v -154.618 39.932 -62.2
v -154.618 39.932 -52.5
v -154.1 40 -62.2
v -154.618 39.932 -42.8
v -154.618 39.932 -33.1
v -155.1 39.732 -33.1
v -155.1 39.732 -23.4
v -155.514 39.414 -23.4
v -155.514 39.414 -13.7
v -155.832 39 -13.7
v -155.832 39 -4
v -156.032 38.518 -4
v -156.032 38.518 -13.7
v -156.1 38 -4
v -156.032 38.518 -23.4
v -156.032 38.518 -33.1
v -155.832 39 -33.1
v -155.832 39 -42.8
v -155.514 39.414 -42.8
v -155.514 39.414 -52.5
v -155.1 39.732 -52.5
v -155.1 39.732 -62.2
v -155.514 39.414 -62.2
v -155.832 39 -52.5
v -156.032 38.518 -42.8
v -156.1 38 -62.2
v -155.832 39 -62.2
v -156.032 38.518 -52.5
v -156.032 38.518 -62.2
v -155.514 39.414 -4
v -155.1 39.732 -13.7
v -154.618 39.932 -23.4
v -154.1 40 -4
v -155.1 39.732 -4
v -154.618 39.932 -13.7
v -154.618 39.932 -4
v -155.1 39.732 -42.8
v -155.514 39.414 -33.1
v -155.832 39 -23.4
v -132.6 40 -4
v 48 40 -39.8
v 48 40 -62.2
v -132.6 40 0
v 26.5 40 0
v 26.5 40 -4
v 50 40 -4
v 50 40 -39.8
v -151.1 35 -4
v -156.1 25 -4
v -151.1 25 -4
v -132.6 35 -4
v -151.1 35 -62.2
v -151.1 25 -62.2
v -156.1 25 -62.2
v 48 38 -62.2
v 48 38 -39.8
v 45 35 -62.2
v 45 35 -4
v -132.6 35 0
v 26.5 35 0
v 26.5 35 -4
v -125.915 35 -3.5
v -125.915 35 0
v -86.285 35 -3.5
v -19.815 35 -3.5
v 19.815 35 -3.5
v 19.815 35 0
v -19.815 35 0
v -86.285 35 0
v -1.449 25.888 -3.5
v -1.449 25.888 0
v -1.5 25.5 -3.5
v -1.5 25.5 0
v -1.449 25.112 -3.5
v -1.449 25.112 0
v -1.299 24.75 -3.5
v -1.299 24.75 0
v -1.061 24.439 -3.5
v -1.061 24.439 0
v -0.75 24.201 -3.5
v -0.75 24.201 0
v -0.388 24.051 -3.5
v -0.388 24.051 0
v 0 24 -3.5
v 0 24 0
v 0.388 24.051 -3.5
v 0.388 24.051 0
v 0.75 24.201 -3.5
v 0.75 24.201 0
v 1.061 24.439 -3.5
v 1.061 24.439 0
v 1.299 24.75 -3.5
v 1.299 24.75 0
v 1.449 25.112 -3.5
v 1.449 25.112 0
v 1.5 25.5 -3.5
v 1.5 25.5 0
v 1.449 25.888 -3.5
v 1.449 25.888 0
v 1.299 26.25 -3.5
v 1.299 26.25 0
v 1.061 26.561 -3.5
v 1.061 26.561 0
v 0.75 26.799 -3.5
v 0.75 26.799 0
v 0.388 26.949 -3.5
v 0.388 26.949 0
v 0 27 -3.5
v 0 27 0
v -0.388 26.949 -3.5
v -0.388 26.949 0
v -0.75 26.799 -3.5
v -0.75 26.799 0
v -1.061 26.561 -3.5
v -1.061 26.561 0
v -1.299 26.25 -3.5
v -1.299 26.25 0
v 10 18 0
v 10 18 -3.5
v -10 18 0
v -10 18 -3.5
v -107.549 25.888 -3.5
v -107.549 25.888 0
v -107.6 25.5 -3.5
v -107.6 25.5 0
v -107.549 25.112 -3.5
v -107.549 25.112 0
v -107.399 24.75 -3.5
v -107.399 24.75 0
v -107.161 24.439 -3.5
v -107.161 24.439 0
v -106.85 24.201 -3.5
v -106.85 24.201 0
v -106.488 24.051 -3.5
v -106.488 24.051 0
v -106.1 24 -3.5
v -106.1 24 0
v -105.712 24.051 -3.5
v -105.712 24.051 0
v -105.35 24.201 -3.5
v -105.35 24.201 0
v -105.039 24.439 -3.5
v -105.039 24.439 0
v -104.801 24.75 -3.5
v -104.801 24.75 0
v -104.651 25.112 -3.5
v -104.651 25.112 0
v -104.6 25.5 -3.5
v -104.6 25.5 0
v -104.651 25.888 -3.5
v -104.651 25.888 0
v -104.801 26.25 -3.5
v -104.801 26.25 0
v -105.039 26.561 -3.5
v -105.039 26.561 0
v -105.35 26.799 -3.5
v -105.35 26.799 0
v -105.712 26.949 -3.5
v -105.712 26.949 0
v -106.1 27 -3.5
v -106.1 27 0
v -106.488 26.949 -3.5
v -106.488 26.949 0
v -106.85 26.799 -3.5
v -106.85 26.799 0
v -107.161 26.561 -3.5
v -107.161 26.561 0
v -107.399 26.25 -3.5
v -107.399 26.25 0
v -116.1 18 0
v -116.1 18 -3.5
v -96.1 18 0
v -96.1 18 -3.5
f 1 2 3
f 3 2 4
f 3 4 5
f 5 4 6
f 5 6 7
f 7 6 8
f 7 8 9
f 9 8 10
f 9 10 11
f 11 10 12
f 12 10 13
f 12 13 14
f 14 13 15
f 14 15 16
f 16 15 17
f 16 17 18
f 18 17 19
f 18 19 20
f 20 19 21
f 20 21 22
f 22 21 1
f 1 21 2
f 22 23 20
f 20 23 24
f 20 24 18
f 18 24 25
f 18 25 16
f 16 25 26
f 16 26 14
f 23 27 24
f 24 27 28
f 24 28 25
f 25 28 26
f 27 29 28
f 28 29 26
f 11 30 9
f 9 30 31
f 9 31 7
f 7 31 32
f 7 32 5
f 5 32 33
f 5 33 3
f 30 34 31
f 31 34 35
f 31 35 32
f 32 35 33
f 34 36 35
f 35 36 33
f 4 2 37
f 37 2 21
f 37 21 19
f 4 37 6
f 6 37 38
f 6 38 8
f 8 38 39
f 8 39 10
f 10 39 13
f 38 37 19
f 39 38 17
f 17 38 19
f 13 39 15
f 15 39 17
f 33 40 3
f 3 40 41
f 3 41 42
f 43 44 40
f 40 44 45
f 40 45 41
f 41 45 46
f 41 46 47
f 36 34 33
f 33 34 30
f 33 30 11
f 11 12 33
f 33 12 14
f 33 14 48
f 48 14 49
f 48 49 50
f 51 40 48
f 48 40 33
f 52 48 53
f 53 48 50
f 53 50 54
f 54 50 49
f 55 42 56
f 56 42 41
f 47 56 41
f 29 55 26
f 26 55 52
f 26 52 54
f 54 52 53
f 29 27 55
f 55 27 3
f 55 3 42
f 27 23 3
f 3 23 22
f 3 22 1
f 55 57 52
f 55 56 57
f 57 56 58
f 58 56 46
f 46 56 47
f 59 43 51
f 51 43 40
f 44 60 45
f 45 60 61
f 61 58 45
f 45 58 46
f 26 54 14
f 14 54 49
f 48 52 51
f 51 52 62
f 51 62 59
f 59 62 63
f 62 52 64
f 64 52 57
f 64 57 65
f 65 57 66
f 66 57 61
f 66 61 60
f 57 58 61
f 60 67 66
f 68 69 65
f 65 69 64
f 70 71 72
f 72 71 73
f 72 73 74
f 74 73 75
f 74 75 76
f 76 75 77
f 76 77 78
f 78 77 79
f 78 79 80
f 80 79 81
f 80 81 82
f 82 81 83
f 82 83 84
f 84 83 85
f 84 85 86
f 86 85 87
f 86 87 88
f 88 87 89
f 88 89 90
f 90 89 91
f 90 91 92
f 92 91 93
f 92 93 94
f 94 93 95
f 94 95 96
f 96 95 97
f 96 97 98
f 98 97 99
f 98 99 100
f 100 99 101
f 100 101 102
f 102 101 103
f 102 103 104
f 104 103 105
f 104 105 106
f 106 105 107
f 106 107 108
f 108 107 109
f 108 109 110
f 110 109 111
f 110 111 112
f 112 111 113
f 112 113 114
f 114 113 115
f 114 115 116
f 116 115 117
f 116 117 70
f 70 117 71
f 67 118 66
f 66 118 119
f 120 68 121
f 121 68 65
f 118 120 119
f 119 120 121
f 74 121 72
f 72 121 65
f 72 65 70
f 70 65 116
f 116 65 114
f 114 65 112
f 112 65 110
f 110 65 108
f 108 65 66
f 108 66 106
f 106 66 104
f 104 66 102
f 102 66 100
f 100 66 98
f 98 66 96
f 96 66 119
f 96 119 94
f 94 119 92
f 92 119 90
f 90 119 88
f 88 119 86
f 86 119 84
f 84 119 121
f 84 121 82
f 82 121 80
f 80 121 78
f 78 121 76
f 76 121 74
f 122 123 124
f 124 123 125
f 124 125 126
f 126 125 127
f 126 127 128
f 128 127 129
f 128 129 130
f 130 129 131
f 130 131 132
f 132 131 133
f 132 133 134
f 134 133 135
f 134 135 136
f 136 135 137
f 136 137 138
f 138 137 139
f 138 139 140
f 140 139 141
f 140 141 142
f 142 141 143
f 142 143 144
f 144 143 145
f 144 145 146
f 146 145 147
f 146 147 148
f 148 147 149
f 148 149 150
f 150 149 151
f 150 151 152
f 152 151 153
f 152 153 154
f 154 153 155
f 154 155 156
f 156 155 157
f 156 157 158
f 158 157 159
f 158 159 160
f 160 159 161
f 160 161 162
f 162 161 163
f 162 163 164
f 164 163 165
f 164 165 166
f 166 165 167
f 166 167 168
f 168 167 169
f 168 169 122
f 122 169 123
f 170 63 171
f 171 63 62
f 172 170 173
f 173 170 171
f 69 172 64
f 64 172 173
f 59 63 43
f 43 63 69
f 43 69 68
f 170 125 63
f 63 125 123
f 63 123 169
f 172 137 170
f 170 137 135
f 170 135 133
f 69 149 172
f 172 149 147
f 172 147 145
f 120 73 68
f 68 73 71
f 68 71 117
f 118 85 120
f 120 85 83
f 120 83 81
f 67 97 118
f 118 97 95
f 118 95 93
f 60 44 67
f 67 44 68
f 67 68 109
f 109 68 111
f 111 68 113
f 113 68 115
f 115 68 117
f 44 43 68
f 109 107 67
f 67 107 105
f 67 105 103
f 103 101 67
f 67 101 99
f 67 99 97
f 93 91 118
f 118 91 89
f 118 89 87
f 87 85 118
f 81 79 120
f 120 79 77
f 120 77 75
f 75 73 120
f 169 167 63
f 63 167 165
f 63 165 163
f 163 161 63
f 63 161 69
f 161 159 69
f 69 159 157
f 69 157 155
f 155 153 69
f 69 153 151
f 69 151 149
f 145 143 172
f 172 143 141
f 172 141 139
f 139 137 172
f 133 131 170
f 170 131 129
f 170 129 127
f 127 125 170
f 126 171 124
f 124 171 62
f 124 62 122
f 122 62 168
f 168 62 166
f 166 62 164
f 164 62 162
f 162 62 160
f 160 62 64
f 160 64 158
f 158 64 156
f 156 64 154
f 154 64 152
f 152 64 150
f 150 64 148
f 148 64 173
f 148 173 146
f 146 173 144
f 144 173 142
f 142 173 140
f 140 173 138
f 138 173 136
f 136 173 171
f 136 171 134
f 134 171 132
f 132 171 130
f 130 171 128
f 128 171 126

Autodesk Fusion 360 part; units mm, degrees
sketch "Sketch1" plane through (0, 0, 0) normal (0, 0, 1) x (1, 0, 0)
  line L0 (-156.1, 40) -> (50, 40)
  line L1 (50, 40) -> (50, 35)
  line L2 (50, 35) -> (-156.1, 35)
  line L3 (-156.1, 35) -> (-156.1, 40)
  circle A0 centre (-106.1, 25.5) radius 1.5
  circle A1 centre (0, 25.5) radius 1.5
  line L4 (-116.1, 35) -> (-96.1, 35)
  line L5 (-96.1, 35) -> (-96.1, 18)
  line L6 (-96.1, 18) -> (-116.1, 18)
  line L7 (-116.1, 18) -> (-116.1, 35)
  line L8 (-10, 35) -> (10, 35)
  line L9 (10, 35) -> (10, 18)
  line L10 (10, 18) -> (-10, 18)
  line L11 (-10, 18) -> (-10, 35)
  line L12 (-96.1, 18) -> (-86.285, 35)
  line L13 (-116.1, 18) -> (-125.915, 35)
  line L14 (-10, 18) -> (-19.815, 35)
  line L15 (10, 18) -> (19.815, 35)
  line L16 (50, 40) -> (45, 35)
  dimension "d1" = 206.1
  dimension "d2" = 5
  dimension "d3" = 3
  dimension "d4" = 3
  dimension "d5" = 50
  dimension "d6" = 14.5
  dimension "d7" = 50
  dimension "d8" = 14.5
  dimension "d9" = 10
  dimension "d10" = 10
  dimension "d11" = 7.5
  dimension "d12" = 10
  dimension "d13" = 10
  dimension "d14" = 7.5
  dimension "d15" = 30
  dimension "d16" = 30
  dimension "d17" = 30
  dimension "d18" = 30
  dimension "d19" = 45
extrude "Extrude1" add sketch "Sketch1" against normal blind 3.5 contours L2 L7 L13 | L2 L9 L15 | L2 L4 L5 L6 L7 | L2 L8 L9 L10 L11 | L2 L5 L12 | L2 L11 L14 makes body 1 at (-95.6839, 26.314, 0) makes body 2 at (10.4161, 26.314, 0)
extrude "Extrude2" add sketch "Sketch1" against normal blind 62.2 contours L0 L2 L3 L4 L8 L16 bodies 1 2
sketch "Sketch3" plane through (0, 0, 0) normal (0, 0, 1) x (-1, 0, 0)
  circle A0 centre (0, -25.5) radius 1.5
  circle A1 centre (106.1, -25.5) radius 1.5
  line L0 (96.1, -18) -> (86.285, -35)
  line L1 (86.285, -35) -> (19.815, -35)
  line L2 (19.815, -35) -> (10, -18)
  line L3 (10, -18) -> (-10, -18)
  line L4 (-10, -18) -> (-19.815, -35)
  line L5 (-19.815, -35) -> (-45, -35)
  line L6 (-45, -35) -> (-50, -40)
  line L7 (-50, -40) -> (156.1, -40)
  line L8 (125.915, -35) -> (116.1, -18)
  line L9 (116.1, -18) -> (96.1, -18)
  line L10 (-50, -40) -> (-26.5, -40)
  line L11 (-26.5, -40) -> (-26.5, -35)
  line L12 (-26.5, -35) -> (-50, -35)
  line L13 (-50, -35) -> (-50, -40)
  line L14 (156.1, -40) -> (132.6, -40)
  line L15 (132.6, -40) -> (132.6, -35)
  line L16 (132.6, -35) -> (156.1, -35)
  line L17 (156.1, -35) -> (156.1, -40)
  line L18 (156.1, -40) -> (156.1, -35)
  line L19 (156.1, -35) -> (125.915, -35)
  dimension "d28" = 5
  dimension "d29" = 23.5
  dimension "d30" = 5
  dimension "d31" = 23.5
extrude "Extrude3" cut sketch "Sketch3" against normal blind 4 contours L7 L14 L15 L16 L17 L18 L19 | L5 L6 L7 L10 L11 L12 bodies 1
sketch "Sketch4" plane through (0, 0, -62.2) normal (0, 0, -1) x (1, 0, 0)
  line L0 (45, -35) -> (-156.1, -35)
  line L1 (-156.1, -35) -> (-156.1, -40)
  line L2 (-156.1, -40) -> (50, -40)
  line L3 (50, -40) -> (45, -35)
  line L4 (50, -40) -> (48, -40)
  line L5 (48, -40) -> (48, -35)
  line L6 (48, -35) -> (50, -35)
  line L7 (50, -35) -> (50, -40)
  dimension "d34" = 5
  dimension "d35" = 2
extrude "Extrude5" cut sketch "Sketch4" against normal blind 22.4 contours L2 L3 L4 L5 bodies 1
sketch "Sketch5" plane through (0, 35, 0) normal (0, -1, 0) x (1, 0, 0)
  line L0 (-132.6, -4) -> (-156.1, -4)
  line L1 (-156.1, -4) -> (-156.1, -62.2)
  line L2 (-156.1, -62.2) -> (45, -62.2)
  line L3 (45, -62.2) -> (45, -4)
  line L4 (45, -4) -> (26.5, -4)
  line L5 (26.5, -4) -> (26.5, 0)
  line L6 (26.5, 0) -> (19.815, 0)
  line L7 (19.815, 0) -> (19.815, -3.5)
  line L8 (19.815, -3.5) -> (-19.815, -3.5)
  line L9 (-19.815, -3.5) -> (-19.815, 0)
  line L10 (-19.815, 0) -> (-86.285, 0)
  line L11 (-86.285, 0) -> (-86.285, -3.5)
  line L12 (-86.285, -3.5) -> (-125.915, -3.5)
  line L13 (-125.915, -3.5) -> (-125.915, 0)
  line L14 (-125.915, 0) -> (-132.6, 0)
  line L15 (-132.6, 0) -> (-132.6, -4)
  line L16 (-156.1, -4) -> (-151.1, -4)
  line L17 (-151.1, -4) -> (-151.1, -62.2)
  line L18 (-151.1, -62.2) -> (-156.1, -62.2)
  line L19 (-156.1, -62.2) -> (-156.1, -4)
  dimension "d40" = 5
extrude "Extrude6" add sketch "Sketch5" along normal blind 10 contours L0 L1 L2 L16 L17 L18 L19 bodies 1
fillet "Fillet1" radius 2 1 edges at (-156.1, 40, -33.1) on bodies 1
